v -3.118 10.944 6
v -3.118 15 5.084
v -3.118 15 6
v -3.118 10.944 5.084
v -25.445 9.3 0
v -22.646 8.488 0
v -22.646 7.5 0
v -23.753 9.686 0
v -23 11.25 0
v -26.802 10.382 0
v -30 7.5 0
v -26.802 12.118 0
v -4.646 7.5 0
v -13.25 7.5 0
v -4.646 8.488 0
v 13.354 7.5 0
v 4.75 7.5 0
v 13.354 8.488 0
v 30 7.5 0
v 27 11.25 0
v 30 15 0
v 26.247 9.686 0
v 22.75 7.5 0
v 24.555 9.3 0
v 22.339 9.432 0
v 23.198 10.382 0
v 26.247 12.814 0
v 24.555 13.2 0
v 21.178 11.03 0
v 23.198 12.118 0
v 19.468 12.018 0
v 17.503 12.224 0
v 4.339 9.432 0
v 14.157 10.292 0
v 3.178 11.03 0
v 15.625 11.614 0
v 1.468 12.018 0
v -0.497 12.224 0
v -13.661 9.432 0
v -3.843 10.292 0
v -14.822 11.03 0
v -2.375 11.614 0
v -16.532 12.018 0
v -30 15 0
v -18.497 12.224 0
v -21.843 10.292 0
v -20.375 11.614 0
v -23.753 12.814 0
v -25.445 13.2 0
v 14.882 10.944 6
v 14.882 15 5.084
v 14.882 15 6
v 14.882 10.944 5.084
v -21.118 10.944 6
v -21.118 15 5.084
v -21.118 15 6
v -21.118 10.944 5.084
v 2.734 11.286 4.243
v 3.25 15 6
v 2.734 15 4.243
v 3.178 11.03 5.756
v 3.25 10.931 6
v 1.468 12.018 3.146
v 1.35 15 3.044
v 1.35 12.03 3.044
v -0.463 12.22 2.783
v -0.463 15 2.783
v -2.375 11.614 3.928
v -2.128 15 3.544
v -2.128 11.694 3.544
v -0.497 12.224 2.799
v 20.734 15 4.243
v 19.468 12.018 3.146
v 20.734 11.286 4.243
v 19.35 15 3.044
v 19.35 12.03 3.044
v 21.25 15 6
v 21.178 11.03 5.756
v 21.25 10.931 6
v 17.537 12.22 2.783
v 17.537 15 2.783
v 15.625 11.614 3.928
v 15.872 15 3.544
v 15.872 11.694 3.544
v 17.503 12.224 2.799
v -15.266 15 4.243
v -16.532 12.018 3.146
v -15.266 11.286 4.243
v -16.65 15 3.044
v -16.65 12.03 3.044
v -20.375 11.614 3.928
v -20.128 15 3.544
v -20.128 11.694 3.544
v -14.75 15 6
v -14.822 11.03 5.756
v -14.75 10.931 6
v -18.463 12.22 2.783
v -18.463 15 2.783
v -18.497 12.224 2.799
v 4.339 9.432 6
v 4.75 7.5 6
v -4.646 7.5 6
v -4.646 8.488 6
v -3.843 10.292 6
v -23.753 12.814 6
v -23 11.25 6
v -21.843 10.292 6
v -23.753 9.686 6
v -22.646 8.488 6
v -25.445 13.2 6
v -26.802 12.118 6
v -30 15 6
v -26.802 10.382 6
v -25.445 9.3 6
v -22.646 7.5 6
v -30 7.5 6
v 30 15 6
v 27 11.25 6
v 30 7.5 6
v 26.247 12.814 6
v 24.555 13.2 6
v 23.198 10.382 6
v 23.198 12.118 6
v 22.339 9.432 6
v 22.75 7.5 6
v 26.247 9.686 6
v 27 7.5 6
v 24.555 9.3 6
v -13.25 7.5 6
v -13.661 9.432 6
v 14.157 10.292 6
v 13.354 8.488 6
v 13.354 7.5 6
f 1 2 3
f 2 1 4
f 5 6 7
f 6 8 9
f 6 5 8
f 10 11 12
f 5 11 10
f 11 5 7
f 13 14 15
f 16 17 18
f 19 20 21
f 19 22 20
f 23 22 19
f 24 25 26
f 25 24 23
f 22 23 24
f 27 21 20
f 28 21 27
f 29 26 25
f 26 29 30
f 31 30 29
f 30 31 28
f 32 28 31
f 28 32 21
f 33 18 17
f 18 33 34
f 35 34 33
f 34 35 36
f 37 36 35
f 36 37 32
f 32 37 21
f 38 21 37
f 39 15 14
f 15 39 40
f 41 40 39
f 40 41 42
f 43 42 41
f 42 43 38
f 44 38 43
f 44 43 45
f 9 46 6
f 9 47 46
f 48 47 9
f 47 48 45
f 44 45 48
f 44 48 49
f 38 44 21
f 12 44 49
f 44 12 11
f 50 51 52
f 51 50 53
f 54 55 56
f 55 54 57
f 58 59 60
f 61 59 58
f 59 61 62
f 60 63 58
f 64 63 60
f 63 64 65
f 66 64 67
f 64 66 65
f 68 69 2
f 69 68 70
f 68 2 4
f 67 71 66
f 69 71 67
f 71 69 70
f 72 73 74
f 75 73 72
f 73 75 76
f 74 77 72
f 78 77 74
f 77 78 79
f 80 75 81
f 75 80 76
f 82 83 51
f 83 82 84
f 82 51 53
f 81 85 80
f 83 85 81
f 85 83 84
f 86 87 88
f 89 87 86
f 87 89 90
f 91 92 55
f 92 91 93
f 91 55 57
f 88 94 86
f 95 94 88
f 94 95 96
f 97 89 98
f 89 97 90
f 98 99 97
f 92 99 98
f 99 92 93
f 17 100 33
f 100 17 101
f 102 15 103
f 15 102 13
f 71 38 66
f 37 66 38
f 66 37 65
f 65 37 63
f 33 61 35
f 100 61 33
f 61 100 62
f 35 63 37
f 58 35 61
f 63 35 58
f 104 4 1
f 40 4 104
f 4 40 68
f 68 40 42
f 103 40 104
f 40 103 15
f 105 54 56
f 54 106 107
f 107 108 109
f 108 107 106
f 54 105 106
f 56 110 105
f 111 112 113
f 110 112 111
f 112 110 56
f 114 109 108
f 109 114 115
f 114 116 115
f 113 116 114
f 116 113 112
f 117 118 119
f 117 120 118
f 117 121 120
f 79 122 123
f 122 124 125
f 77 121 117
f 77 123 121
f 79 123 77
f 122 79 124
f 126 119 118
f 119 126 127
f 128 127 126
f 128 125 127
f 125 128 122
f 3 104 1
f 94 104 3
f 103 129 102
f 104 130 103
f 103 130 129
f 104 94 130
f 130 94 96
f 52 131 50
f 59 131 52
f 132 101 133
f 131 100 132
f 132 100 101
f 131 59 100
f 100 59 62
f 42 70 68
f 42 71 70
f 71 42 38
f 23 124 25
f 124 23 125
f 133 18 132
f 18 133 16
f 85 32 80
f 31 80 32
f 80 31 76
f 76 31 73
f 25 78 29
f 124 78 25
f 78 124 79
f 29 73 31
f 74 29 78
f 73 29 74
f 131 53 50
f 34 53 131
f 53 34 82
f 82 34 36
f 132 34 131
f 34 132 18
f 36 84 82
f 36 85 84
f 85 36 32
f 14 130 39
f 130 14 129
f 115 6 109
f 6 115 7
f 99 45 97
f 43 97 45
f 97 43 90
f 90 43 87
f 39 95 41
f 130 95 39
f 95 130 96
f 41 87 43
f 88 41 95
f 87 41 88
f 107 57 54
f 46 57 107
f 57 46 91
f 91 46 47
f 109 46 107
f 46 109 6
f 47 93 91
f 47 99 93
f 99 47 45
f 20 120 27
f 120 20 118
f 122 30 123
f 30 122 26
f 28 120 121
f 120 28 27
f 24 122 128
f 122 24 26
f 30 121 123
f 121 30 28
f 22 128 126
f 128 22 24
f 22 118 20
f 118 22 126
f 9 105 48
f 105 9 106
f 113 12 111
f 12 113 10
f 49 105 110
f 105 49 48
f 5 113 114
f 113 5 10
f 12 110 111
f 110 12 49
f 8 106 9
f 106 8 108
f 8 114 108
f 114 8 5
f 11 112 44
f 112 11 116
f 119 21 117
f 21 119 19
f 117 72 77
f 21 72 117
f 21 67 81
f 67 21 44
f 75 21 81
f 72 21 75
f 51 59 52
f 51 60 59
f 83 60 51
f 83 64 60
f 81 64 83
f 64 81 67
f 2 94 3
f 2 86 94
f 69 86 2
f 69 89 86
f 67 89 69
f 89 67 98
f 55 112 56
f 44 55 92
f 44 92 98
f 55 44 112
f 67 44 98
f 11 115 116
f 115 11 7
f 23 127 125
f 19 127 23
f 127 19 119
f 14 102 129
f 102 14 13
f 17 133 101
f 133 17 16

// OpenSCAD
intersection() {
	union() {
		translate(v = [0, 7.5000000000, 0]) {
			difference() {
				translate(v = [0, 0, 6.0000000000]) {
					cube(center = true, size = [60, 15, 12]);
				}
				translate(v = [0, 7.5000000000, 0]) {
					translate(v = [0, 0, 6.0000000000]) {
						translate(v = [0, 0, 6.0000000000]) {
							cube(center = true, size = [60, 15, 12]);
						}
					}
				}
				union() {
					cylinder(d = 6.5000000000, h = 30);
					translate(v = [18, 0, 0]) {
						cylinder(d = 6.5000000000, h = 30);
					}
					translate(v = [-18, 0, 0]) {
						cylinder(d = 6.5000000000, h = 30);
					}
				}
				translate(v = [0, 15.0000000000, 0]) {
					translate(v = [0, 0, 6.0000000000]) {
						rotate(a = [90, 0, 0]) {
							union() {
								cylinder(d = 6.5000000000, h = 30);
								translate(v = [18, 0, 0]) {
									cylinder(d = 6.5000000000, h = 30);
								}
								translate(v = [-18, 0, 0]) {
									cylinder(d = 6.5000000000, h = 30);
								}
							}
						}
					}
				}
				union() {
					cylinder(d = 9.5000000000, h = 6.0000000000);
					translate(v = [18, 0, 0]) {
						cylinder(d = 9.5000000000, h = 6.0000000000);
					}
					translate(v = [-18, 0, 0]) {
						cylinder(d = 9.5000000000, h = 6.0000000000);
					}
				}
				union() {
					translate(v = [25.0000000000, 0, 0]) {
						translate(v = [0, 3.7500000000, 0]) {
							cylinder(d = 4.0000000000, h = 30);
						}
					}
					translate(v = [-25.0000000000, 0, 0]) {
						translate(v = [0, 3.7500000000, 0]) {
							cylinder(d = 4.0000000000, h = 30);
						}
					}
				}
			}
		}
		rotate(a = [0, 0, 180]) {
			translate(v = [0, 7.5000000000, 0]) {
				difference() {
					translate(v = [0, 0, 6.0000000000]) {
						cube(center = true, size = [60, 15, 12]);
					}
					translate(v = [0, 7.5000000000, 0]) {
						translate(v = [0, 0, 6.0000000000]) {
							translate(v = [0, 0, 6.0000000000]) {
								cube(center = true, size = [60, 15, 12]);
							}
						}
					}
					union() {
						cylinder(d = 6.5000000000, h = 30);
						translate(v = [18, 0, 0]) {
							cylinder(d = 6.5000000000, h = 30);
						}
						translate(v = [-18, 0, 0]) {
							cylinder(d = 6.5000000000, h = 30);
						}
					}
					translate(v = [0, 15.0000000000, 0]) {
						translate(v = [0, 0, 6.0000000000]) {
							rotate(a = [90, 0, 0]) {
								union() {
									cylinder(d = 6.5000000000, h = 30);
									translate(v = [18, 0, 0]) {
										cylinder(d = 6.5000000000, h = 30);
									}
									translate(v = [-18, 0, 0]) {
										cylinder(d = 6.5000000000, h = 30);
									}
								}
							}
						}
					}
					union() {
						cylinder(d = 9.5000000000, h = 6.0000000000);
						translate(v = [18, 0, 0]) {
							cylinder(d = 9.5000000000, h = 6.0000000000);
						}
						translate(v = [-18, 0, 0]) {
							cylinder(d = 9.5000000000, h = 6.0000000000);
						}
					}
					union() {
						translate(v = [25.0000000000, 0, 0]) {
							translate(v = [0, 3.7500000000, 0]) {
								cylinder(d = 4.0000000000, h = 30);
							}
						}
						translate(v = [-25.0000000000, 0, 0]) {
							translate(v = [0, 3.7500000000, 0]) {
								cylinder(d = 4.0000000000, h = 30);
							}
						}
					}
				}
			}
		}
		translate(v = [-60, 0, 0]) {
			union() {
				translate(v = [0, 7.5000000000, 0]) {
					difference() {
						translate(v = [0, 0, 6.0000000000]) {
							cube(center = true, size = [60, 15, 12]);
						}
						translate(v = [0, 7.5000000000, 0]) {
							translate(v = [0, 0, 6.0000000000]) {
								translate(v = [0, 0, 6.0000000000]) {
									cube(center = true, size = [60, 15, 12]);
								}
							}
						}
						union() {
							cylinder(d = 6.5000000000, h = 30);
							translate(v = [18, 0, 0]) {
								cylinder(d = 6.5000000000, h = 30);
							}
							translate(v = [-18, 0, 0]) {
								cylinder(d = 6.5000000000, h = 30);
							}
						}
						translate(v = [0, 15.0000000000, 0]) {
							translate(v = [0, 0, 6.0000000000]) {
								rotate(a = [90, 0, 0]) {
									union() {
										cylinder(d = 6.5000000000, h = 30);
										translate(v = [18, 0, 0]) {
											cylinder(d = 6.5000000000, h = 30);
										}
										translate(v = [-18, 0, 0]) {
											cylinder(d = 6.5000000000, h = 30);
										}
									}
								}
							}
						}
						union() {
							cylinder(d = 9.5000000000, h = 6.0000000000);
							translate(v = [18, 0, 0]) {
								cylinder(d = 9.5000000000, h = 6.0000000000);
							}
							translate(v = [-18, 0, 0]) {
								cylinder(d = 9.5000000000, h = 6.0000000000);
							}
						}
						union() {
							translate(v = [25.0000000000, 0, 0]) {
								translate(v = [0, 3.7500000000, 0]) {
									cylinder(d = 4.0000000000, h = 30);
								}
							}
							translate(v = [-25.0000000000, 0, 0]) {
								translate(v = [0, 3.7500000000, 0]) {
									cylinder(d = 4.0000000000, h = 30);
								}
							}
						}
					}
				}
				rotate(a = [0, 0, 180]) {
					translate(v = [0, 7.5000000000, 0]) {
						difference() {
							translate(v = [0, 0, 6.0000000000]) {
								cube(center = true, size = [60, 15, 12]);
							}
							translate(v = [0, 7.5000000000, 0]) {
								translate(v = [0, 0, 6.0000000000]) {
									translate(v = [0, 0, 6.0000000000]) {
										cube(center = true, size = [60, 15, 12]);
									}
								}
							}
							union() {
								cylinder(d = 6.5000000000, h = 30);
								translate(v = [18, 0, 0]) {
									cylinder(d = 6.5000000000, h = 30);
								}
								translate(v = [-18, 0, 0]) {
									cylinder(d = 6.5000000000, h = 30);
								}
							}
							translate(v = [0, 15.0000000000, 0]) {
								translate(v = [0, 0, 6.0000000000]) {
									rotate(a = [90, 0, 0]) {
										union() {
											cylinder(d = 6.5000000000, h = 30);
											translate(v = [18, 0, 0]) {
												cylinder(d = 6.5000000000, h = 30);
											}
											translate(v = [-18, 0, 0]) {
												cylinder(d = 6.5000000000, h = 30);
											}
										}
									}
								}
							}
							union() {
								cylinder(d = 9.5000000000, h = 6.0000000000);
								translate(v = [18, 0, 0]) {
									cylinder(d = 9.5000000000, h = 6.0000000000);
								}
								translate(v = [-18, 0, 0]) {
									cylinder(d = 9.5000000000, h = 6.0000000000);
								}
							}
							union() {
								translate(v = [25.0000000000, 0, 0]) {
									translate(v = [0, 3.7500000000, 0]) {
										cylinder(d = 4.0000000000, h = 30);
									}
								}
								translate(v = [-25.0000000000, 0, 0]) {
									translate(v = [0, 3.7500000000, 0]) {
										cylinder(d = 4.0000000000, h = 30);
									}
								}
							}
						}
					}
				}
			}
		}
		translate(v = [-120, 0, 0]) {
			union() {
				translate(v = [0, 7.5000000000, 0]) {
					difference() {
						translate(v = [0, 0, 6.0000000000]) {
							cube(center = true, size = [60, 15, 12]);
						}
						translate(v = [0, 7.5000000000, 0]) {
							translate(v = [0, 0, 6.0000000000]) {
								translate(v = [0, 0, 6.0000000000]) {
									cube(center = true, size = [60, 15, 12]);
								}
							}
						}
						union() {
							cylinder(d = 6.5000000000, h = 30);
							translate(v = [18, 0, 0]) {
								cylinder(d = 6.5000000000, h = 30);
							}
							translate(v = [-18, 0, 0]) {
								cylinder(d = 6.5000000000, h = 30);
							}
						}
						translate(v = [0, 15.0000000000, 0]) {
							translate(v = [0, 0, 6.0000000000]) {
								rotate(a = [90, 0, 0]) {
									union() {
										cylinder(d = 6.5000000000, h = 30);
										translate(v = [18, 0, 0]) {
											cylinder(d = 6.5000000000, h = 30);
										}
										translate(v = [-18, 0, 0]) {
											cylinder(d = 6.5000000000, h = 30);
										}
									}
								}
							}
						}
						union() {
							cylinder(d = 9.5000000000, h = 6.0000000000);
							translate(v = [18, 0, 0]) {
								cylinder(d = 9.5000000000, h = 6.0000000000);
							}
							translate(v = [-18, 0, 0]) {
								cylinder(d = 9.5000000000, h = 6.0000000000);
							}
						}
						union() {
							translate(v = [25.0000000000, 0, 0]) {
								translate(v = [0, 3.7500000000, 0]) {
									cylinder(d = 4.0000000000, h = 30);
								}
							}
							translate(v = [-25.0000000000, 0, 0]) {
								translate(v = [0, 3.7500000000, 0]) {
									cylinder(d = 4.0000000000, h = 30);
								}
							}
						}
					}
				}
				rotate(a = [0, 0, 180]) {
					translate(v = [0, 7.5000000000, 0]) {
						difference() {
							translate(v = [0, 0, 6.0000000000]) {
								cube(center = true, size = [60, 15, 12]);
							}
							translate(v = [0, 7.5000000000, 0]) {
								translate(v = [0, 0, 6.0000000000]) {
									translate(v = [0, 0, 6.0000000000]) {
										cube(center = true, size = [60, 15, 12]);
									}
								}
							}
							union() {
								cylinder(d = 6.5000000000, h = 30);
								translate(v = [18, 0, 0]) {
									cylinder(d = 6.5000000000, h = 30);
								}
								translate(v = [-18, 0, 0]) {
									cylinder(d = 6.5000000000, h = 30);
								}
							}
							translate(v = [0, 15.0000000000, 0]) {
								translate(v = [0, 0, 6.0000000000]) {
									rotate(a = [90, 0, 0]) {
										union() {
											cylinder(d = 6.5000000000, h = 30);
											translate(v = [18, 0, 0]) {
												cylinder(d = 6.5000000000, h = 30);
											}
											translate(v = [-18, 0, 0]) {
												cylinder(d = 6.5000000000, h = 30);
											}
										}
									}
								}
							}
							union() {
								cylinder(d = 9.5000000000, h = 6.0000000000);
								translate(v = [18, 0, 0]) {
									cylinder(d = 9.5000000000, h = 6.0000000000);
								}
								translate(v = [-18, 0, 0]) {
									cylinder(d = 9.5000000000, h = 6.0000000000);
								}
							}
							union() {
								translate(v = [25.0000000000, 0, 0]) {
									translate(v = [0, 3.7500000000, 0]) {
										cylinder(d = 4.0000000000, h = 30);
									}
								}
								translate(v = [-25.0000000000, 0, 0]) {
									translate(v = [0, 3.7500000000, 0]) {
										cylinder(d = 4.0000000000, h = 30);
									}
								}
							}
						}
					}
				}
			}
		}
		difference() {
			translate(v = [28.0000000000, 0, 0]) {
				translate(v = [0, 0, 20.0000000000]) {
					cube(center = true, size = [4, 15, 40]);
				}
			}
			union() {
				translate(v = [0, 0, 34]) {
					translate(v = [20.0000000000, 0, 0]) {
						rotate(a = [0, 90, 0]) {
							cylinder(d = 6, h = 30);
						}
					}
				}
				translate(v = [0, 0, -12]) {
					translate(v = [0, 0, 34]) {
						translate(v = [20.0000000000, 0, 0]) {
							rotate(a = [0, 90, 0]) {
								cylinder(d = 6, h = 30);
							}
						}
					}
				}
			}
		}
		translate(v = [-176, 0, 0]) {
			difference() {
				translate(v = [28.0000000000, 0, 0]) {
					translate(v = [0, 0, 20.0000000000]) {
						cube(center = true, size = [4, 15, 40]);
					}
				}
				union() {
					translate(v = [0, 0, 34]) {
						translate(v = [20.0000000000, 0, 0]) {
							rotate(a = [0, 90, 0]) {
								cylinder(d = 6, h = 30);
							}
						}
					}
					translate(v = [0, 0, -12]) {
						translate(v = [0, 0, 34]) {
							translate(v = [20.0000000000, 0, 0]) {
								rotate(a = [0, 90, 0]) {
									cylinder(d = 6, h = 30);
								}
							}
						}
					}
				}
			}
		}
	}
	translate(v = [0, 15, 0]) {
		cube(center = true, size = [60, 15, 12]);
	}
}
